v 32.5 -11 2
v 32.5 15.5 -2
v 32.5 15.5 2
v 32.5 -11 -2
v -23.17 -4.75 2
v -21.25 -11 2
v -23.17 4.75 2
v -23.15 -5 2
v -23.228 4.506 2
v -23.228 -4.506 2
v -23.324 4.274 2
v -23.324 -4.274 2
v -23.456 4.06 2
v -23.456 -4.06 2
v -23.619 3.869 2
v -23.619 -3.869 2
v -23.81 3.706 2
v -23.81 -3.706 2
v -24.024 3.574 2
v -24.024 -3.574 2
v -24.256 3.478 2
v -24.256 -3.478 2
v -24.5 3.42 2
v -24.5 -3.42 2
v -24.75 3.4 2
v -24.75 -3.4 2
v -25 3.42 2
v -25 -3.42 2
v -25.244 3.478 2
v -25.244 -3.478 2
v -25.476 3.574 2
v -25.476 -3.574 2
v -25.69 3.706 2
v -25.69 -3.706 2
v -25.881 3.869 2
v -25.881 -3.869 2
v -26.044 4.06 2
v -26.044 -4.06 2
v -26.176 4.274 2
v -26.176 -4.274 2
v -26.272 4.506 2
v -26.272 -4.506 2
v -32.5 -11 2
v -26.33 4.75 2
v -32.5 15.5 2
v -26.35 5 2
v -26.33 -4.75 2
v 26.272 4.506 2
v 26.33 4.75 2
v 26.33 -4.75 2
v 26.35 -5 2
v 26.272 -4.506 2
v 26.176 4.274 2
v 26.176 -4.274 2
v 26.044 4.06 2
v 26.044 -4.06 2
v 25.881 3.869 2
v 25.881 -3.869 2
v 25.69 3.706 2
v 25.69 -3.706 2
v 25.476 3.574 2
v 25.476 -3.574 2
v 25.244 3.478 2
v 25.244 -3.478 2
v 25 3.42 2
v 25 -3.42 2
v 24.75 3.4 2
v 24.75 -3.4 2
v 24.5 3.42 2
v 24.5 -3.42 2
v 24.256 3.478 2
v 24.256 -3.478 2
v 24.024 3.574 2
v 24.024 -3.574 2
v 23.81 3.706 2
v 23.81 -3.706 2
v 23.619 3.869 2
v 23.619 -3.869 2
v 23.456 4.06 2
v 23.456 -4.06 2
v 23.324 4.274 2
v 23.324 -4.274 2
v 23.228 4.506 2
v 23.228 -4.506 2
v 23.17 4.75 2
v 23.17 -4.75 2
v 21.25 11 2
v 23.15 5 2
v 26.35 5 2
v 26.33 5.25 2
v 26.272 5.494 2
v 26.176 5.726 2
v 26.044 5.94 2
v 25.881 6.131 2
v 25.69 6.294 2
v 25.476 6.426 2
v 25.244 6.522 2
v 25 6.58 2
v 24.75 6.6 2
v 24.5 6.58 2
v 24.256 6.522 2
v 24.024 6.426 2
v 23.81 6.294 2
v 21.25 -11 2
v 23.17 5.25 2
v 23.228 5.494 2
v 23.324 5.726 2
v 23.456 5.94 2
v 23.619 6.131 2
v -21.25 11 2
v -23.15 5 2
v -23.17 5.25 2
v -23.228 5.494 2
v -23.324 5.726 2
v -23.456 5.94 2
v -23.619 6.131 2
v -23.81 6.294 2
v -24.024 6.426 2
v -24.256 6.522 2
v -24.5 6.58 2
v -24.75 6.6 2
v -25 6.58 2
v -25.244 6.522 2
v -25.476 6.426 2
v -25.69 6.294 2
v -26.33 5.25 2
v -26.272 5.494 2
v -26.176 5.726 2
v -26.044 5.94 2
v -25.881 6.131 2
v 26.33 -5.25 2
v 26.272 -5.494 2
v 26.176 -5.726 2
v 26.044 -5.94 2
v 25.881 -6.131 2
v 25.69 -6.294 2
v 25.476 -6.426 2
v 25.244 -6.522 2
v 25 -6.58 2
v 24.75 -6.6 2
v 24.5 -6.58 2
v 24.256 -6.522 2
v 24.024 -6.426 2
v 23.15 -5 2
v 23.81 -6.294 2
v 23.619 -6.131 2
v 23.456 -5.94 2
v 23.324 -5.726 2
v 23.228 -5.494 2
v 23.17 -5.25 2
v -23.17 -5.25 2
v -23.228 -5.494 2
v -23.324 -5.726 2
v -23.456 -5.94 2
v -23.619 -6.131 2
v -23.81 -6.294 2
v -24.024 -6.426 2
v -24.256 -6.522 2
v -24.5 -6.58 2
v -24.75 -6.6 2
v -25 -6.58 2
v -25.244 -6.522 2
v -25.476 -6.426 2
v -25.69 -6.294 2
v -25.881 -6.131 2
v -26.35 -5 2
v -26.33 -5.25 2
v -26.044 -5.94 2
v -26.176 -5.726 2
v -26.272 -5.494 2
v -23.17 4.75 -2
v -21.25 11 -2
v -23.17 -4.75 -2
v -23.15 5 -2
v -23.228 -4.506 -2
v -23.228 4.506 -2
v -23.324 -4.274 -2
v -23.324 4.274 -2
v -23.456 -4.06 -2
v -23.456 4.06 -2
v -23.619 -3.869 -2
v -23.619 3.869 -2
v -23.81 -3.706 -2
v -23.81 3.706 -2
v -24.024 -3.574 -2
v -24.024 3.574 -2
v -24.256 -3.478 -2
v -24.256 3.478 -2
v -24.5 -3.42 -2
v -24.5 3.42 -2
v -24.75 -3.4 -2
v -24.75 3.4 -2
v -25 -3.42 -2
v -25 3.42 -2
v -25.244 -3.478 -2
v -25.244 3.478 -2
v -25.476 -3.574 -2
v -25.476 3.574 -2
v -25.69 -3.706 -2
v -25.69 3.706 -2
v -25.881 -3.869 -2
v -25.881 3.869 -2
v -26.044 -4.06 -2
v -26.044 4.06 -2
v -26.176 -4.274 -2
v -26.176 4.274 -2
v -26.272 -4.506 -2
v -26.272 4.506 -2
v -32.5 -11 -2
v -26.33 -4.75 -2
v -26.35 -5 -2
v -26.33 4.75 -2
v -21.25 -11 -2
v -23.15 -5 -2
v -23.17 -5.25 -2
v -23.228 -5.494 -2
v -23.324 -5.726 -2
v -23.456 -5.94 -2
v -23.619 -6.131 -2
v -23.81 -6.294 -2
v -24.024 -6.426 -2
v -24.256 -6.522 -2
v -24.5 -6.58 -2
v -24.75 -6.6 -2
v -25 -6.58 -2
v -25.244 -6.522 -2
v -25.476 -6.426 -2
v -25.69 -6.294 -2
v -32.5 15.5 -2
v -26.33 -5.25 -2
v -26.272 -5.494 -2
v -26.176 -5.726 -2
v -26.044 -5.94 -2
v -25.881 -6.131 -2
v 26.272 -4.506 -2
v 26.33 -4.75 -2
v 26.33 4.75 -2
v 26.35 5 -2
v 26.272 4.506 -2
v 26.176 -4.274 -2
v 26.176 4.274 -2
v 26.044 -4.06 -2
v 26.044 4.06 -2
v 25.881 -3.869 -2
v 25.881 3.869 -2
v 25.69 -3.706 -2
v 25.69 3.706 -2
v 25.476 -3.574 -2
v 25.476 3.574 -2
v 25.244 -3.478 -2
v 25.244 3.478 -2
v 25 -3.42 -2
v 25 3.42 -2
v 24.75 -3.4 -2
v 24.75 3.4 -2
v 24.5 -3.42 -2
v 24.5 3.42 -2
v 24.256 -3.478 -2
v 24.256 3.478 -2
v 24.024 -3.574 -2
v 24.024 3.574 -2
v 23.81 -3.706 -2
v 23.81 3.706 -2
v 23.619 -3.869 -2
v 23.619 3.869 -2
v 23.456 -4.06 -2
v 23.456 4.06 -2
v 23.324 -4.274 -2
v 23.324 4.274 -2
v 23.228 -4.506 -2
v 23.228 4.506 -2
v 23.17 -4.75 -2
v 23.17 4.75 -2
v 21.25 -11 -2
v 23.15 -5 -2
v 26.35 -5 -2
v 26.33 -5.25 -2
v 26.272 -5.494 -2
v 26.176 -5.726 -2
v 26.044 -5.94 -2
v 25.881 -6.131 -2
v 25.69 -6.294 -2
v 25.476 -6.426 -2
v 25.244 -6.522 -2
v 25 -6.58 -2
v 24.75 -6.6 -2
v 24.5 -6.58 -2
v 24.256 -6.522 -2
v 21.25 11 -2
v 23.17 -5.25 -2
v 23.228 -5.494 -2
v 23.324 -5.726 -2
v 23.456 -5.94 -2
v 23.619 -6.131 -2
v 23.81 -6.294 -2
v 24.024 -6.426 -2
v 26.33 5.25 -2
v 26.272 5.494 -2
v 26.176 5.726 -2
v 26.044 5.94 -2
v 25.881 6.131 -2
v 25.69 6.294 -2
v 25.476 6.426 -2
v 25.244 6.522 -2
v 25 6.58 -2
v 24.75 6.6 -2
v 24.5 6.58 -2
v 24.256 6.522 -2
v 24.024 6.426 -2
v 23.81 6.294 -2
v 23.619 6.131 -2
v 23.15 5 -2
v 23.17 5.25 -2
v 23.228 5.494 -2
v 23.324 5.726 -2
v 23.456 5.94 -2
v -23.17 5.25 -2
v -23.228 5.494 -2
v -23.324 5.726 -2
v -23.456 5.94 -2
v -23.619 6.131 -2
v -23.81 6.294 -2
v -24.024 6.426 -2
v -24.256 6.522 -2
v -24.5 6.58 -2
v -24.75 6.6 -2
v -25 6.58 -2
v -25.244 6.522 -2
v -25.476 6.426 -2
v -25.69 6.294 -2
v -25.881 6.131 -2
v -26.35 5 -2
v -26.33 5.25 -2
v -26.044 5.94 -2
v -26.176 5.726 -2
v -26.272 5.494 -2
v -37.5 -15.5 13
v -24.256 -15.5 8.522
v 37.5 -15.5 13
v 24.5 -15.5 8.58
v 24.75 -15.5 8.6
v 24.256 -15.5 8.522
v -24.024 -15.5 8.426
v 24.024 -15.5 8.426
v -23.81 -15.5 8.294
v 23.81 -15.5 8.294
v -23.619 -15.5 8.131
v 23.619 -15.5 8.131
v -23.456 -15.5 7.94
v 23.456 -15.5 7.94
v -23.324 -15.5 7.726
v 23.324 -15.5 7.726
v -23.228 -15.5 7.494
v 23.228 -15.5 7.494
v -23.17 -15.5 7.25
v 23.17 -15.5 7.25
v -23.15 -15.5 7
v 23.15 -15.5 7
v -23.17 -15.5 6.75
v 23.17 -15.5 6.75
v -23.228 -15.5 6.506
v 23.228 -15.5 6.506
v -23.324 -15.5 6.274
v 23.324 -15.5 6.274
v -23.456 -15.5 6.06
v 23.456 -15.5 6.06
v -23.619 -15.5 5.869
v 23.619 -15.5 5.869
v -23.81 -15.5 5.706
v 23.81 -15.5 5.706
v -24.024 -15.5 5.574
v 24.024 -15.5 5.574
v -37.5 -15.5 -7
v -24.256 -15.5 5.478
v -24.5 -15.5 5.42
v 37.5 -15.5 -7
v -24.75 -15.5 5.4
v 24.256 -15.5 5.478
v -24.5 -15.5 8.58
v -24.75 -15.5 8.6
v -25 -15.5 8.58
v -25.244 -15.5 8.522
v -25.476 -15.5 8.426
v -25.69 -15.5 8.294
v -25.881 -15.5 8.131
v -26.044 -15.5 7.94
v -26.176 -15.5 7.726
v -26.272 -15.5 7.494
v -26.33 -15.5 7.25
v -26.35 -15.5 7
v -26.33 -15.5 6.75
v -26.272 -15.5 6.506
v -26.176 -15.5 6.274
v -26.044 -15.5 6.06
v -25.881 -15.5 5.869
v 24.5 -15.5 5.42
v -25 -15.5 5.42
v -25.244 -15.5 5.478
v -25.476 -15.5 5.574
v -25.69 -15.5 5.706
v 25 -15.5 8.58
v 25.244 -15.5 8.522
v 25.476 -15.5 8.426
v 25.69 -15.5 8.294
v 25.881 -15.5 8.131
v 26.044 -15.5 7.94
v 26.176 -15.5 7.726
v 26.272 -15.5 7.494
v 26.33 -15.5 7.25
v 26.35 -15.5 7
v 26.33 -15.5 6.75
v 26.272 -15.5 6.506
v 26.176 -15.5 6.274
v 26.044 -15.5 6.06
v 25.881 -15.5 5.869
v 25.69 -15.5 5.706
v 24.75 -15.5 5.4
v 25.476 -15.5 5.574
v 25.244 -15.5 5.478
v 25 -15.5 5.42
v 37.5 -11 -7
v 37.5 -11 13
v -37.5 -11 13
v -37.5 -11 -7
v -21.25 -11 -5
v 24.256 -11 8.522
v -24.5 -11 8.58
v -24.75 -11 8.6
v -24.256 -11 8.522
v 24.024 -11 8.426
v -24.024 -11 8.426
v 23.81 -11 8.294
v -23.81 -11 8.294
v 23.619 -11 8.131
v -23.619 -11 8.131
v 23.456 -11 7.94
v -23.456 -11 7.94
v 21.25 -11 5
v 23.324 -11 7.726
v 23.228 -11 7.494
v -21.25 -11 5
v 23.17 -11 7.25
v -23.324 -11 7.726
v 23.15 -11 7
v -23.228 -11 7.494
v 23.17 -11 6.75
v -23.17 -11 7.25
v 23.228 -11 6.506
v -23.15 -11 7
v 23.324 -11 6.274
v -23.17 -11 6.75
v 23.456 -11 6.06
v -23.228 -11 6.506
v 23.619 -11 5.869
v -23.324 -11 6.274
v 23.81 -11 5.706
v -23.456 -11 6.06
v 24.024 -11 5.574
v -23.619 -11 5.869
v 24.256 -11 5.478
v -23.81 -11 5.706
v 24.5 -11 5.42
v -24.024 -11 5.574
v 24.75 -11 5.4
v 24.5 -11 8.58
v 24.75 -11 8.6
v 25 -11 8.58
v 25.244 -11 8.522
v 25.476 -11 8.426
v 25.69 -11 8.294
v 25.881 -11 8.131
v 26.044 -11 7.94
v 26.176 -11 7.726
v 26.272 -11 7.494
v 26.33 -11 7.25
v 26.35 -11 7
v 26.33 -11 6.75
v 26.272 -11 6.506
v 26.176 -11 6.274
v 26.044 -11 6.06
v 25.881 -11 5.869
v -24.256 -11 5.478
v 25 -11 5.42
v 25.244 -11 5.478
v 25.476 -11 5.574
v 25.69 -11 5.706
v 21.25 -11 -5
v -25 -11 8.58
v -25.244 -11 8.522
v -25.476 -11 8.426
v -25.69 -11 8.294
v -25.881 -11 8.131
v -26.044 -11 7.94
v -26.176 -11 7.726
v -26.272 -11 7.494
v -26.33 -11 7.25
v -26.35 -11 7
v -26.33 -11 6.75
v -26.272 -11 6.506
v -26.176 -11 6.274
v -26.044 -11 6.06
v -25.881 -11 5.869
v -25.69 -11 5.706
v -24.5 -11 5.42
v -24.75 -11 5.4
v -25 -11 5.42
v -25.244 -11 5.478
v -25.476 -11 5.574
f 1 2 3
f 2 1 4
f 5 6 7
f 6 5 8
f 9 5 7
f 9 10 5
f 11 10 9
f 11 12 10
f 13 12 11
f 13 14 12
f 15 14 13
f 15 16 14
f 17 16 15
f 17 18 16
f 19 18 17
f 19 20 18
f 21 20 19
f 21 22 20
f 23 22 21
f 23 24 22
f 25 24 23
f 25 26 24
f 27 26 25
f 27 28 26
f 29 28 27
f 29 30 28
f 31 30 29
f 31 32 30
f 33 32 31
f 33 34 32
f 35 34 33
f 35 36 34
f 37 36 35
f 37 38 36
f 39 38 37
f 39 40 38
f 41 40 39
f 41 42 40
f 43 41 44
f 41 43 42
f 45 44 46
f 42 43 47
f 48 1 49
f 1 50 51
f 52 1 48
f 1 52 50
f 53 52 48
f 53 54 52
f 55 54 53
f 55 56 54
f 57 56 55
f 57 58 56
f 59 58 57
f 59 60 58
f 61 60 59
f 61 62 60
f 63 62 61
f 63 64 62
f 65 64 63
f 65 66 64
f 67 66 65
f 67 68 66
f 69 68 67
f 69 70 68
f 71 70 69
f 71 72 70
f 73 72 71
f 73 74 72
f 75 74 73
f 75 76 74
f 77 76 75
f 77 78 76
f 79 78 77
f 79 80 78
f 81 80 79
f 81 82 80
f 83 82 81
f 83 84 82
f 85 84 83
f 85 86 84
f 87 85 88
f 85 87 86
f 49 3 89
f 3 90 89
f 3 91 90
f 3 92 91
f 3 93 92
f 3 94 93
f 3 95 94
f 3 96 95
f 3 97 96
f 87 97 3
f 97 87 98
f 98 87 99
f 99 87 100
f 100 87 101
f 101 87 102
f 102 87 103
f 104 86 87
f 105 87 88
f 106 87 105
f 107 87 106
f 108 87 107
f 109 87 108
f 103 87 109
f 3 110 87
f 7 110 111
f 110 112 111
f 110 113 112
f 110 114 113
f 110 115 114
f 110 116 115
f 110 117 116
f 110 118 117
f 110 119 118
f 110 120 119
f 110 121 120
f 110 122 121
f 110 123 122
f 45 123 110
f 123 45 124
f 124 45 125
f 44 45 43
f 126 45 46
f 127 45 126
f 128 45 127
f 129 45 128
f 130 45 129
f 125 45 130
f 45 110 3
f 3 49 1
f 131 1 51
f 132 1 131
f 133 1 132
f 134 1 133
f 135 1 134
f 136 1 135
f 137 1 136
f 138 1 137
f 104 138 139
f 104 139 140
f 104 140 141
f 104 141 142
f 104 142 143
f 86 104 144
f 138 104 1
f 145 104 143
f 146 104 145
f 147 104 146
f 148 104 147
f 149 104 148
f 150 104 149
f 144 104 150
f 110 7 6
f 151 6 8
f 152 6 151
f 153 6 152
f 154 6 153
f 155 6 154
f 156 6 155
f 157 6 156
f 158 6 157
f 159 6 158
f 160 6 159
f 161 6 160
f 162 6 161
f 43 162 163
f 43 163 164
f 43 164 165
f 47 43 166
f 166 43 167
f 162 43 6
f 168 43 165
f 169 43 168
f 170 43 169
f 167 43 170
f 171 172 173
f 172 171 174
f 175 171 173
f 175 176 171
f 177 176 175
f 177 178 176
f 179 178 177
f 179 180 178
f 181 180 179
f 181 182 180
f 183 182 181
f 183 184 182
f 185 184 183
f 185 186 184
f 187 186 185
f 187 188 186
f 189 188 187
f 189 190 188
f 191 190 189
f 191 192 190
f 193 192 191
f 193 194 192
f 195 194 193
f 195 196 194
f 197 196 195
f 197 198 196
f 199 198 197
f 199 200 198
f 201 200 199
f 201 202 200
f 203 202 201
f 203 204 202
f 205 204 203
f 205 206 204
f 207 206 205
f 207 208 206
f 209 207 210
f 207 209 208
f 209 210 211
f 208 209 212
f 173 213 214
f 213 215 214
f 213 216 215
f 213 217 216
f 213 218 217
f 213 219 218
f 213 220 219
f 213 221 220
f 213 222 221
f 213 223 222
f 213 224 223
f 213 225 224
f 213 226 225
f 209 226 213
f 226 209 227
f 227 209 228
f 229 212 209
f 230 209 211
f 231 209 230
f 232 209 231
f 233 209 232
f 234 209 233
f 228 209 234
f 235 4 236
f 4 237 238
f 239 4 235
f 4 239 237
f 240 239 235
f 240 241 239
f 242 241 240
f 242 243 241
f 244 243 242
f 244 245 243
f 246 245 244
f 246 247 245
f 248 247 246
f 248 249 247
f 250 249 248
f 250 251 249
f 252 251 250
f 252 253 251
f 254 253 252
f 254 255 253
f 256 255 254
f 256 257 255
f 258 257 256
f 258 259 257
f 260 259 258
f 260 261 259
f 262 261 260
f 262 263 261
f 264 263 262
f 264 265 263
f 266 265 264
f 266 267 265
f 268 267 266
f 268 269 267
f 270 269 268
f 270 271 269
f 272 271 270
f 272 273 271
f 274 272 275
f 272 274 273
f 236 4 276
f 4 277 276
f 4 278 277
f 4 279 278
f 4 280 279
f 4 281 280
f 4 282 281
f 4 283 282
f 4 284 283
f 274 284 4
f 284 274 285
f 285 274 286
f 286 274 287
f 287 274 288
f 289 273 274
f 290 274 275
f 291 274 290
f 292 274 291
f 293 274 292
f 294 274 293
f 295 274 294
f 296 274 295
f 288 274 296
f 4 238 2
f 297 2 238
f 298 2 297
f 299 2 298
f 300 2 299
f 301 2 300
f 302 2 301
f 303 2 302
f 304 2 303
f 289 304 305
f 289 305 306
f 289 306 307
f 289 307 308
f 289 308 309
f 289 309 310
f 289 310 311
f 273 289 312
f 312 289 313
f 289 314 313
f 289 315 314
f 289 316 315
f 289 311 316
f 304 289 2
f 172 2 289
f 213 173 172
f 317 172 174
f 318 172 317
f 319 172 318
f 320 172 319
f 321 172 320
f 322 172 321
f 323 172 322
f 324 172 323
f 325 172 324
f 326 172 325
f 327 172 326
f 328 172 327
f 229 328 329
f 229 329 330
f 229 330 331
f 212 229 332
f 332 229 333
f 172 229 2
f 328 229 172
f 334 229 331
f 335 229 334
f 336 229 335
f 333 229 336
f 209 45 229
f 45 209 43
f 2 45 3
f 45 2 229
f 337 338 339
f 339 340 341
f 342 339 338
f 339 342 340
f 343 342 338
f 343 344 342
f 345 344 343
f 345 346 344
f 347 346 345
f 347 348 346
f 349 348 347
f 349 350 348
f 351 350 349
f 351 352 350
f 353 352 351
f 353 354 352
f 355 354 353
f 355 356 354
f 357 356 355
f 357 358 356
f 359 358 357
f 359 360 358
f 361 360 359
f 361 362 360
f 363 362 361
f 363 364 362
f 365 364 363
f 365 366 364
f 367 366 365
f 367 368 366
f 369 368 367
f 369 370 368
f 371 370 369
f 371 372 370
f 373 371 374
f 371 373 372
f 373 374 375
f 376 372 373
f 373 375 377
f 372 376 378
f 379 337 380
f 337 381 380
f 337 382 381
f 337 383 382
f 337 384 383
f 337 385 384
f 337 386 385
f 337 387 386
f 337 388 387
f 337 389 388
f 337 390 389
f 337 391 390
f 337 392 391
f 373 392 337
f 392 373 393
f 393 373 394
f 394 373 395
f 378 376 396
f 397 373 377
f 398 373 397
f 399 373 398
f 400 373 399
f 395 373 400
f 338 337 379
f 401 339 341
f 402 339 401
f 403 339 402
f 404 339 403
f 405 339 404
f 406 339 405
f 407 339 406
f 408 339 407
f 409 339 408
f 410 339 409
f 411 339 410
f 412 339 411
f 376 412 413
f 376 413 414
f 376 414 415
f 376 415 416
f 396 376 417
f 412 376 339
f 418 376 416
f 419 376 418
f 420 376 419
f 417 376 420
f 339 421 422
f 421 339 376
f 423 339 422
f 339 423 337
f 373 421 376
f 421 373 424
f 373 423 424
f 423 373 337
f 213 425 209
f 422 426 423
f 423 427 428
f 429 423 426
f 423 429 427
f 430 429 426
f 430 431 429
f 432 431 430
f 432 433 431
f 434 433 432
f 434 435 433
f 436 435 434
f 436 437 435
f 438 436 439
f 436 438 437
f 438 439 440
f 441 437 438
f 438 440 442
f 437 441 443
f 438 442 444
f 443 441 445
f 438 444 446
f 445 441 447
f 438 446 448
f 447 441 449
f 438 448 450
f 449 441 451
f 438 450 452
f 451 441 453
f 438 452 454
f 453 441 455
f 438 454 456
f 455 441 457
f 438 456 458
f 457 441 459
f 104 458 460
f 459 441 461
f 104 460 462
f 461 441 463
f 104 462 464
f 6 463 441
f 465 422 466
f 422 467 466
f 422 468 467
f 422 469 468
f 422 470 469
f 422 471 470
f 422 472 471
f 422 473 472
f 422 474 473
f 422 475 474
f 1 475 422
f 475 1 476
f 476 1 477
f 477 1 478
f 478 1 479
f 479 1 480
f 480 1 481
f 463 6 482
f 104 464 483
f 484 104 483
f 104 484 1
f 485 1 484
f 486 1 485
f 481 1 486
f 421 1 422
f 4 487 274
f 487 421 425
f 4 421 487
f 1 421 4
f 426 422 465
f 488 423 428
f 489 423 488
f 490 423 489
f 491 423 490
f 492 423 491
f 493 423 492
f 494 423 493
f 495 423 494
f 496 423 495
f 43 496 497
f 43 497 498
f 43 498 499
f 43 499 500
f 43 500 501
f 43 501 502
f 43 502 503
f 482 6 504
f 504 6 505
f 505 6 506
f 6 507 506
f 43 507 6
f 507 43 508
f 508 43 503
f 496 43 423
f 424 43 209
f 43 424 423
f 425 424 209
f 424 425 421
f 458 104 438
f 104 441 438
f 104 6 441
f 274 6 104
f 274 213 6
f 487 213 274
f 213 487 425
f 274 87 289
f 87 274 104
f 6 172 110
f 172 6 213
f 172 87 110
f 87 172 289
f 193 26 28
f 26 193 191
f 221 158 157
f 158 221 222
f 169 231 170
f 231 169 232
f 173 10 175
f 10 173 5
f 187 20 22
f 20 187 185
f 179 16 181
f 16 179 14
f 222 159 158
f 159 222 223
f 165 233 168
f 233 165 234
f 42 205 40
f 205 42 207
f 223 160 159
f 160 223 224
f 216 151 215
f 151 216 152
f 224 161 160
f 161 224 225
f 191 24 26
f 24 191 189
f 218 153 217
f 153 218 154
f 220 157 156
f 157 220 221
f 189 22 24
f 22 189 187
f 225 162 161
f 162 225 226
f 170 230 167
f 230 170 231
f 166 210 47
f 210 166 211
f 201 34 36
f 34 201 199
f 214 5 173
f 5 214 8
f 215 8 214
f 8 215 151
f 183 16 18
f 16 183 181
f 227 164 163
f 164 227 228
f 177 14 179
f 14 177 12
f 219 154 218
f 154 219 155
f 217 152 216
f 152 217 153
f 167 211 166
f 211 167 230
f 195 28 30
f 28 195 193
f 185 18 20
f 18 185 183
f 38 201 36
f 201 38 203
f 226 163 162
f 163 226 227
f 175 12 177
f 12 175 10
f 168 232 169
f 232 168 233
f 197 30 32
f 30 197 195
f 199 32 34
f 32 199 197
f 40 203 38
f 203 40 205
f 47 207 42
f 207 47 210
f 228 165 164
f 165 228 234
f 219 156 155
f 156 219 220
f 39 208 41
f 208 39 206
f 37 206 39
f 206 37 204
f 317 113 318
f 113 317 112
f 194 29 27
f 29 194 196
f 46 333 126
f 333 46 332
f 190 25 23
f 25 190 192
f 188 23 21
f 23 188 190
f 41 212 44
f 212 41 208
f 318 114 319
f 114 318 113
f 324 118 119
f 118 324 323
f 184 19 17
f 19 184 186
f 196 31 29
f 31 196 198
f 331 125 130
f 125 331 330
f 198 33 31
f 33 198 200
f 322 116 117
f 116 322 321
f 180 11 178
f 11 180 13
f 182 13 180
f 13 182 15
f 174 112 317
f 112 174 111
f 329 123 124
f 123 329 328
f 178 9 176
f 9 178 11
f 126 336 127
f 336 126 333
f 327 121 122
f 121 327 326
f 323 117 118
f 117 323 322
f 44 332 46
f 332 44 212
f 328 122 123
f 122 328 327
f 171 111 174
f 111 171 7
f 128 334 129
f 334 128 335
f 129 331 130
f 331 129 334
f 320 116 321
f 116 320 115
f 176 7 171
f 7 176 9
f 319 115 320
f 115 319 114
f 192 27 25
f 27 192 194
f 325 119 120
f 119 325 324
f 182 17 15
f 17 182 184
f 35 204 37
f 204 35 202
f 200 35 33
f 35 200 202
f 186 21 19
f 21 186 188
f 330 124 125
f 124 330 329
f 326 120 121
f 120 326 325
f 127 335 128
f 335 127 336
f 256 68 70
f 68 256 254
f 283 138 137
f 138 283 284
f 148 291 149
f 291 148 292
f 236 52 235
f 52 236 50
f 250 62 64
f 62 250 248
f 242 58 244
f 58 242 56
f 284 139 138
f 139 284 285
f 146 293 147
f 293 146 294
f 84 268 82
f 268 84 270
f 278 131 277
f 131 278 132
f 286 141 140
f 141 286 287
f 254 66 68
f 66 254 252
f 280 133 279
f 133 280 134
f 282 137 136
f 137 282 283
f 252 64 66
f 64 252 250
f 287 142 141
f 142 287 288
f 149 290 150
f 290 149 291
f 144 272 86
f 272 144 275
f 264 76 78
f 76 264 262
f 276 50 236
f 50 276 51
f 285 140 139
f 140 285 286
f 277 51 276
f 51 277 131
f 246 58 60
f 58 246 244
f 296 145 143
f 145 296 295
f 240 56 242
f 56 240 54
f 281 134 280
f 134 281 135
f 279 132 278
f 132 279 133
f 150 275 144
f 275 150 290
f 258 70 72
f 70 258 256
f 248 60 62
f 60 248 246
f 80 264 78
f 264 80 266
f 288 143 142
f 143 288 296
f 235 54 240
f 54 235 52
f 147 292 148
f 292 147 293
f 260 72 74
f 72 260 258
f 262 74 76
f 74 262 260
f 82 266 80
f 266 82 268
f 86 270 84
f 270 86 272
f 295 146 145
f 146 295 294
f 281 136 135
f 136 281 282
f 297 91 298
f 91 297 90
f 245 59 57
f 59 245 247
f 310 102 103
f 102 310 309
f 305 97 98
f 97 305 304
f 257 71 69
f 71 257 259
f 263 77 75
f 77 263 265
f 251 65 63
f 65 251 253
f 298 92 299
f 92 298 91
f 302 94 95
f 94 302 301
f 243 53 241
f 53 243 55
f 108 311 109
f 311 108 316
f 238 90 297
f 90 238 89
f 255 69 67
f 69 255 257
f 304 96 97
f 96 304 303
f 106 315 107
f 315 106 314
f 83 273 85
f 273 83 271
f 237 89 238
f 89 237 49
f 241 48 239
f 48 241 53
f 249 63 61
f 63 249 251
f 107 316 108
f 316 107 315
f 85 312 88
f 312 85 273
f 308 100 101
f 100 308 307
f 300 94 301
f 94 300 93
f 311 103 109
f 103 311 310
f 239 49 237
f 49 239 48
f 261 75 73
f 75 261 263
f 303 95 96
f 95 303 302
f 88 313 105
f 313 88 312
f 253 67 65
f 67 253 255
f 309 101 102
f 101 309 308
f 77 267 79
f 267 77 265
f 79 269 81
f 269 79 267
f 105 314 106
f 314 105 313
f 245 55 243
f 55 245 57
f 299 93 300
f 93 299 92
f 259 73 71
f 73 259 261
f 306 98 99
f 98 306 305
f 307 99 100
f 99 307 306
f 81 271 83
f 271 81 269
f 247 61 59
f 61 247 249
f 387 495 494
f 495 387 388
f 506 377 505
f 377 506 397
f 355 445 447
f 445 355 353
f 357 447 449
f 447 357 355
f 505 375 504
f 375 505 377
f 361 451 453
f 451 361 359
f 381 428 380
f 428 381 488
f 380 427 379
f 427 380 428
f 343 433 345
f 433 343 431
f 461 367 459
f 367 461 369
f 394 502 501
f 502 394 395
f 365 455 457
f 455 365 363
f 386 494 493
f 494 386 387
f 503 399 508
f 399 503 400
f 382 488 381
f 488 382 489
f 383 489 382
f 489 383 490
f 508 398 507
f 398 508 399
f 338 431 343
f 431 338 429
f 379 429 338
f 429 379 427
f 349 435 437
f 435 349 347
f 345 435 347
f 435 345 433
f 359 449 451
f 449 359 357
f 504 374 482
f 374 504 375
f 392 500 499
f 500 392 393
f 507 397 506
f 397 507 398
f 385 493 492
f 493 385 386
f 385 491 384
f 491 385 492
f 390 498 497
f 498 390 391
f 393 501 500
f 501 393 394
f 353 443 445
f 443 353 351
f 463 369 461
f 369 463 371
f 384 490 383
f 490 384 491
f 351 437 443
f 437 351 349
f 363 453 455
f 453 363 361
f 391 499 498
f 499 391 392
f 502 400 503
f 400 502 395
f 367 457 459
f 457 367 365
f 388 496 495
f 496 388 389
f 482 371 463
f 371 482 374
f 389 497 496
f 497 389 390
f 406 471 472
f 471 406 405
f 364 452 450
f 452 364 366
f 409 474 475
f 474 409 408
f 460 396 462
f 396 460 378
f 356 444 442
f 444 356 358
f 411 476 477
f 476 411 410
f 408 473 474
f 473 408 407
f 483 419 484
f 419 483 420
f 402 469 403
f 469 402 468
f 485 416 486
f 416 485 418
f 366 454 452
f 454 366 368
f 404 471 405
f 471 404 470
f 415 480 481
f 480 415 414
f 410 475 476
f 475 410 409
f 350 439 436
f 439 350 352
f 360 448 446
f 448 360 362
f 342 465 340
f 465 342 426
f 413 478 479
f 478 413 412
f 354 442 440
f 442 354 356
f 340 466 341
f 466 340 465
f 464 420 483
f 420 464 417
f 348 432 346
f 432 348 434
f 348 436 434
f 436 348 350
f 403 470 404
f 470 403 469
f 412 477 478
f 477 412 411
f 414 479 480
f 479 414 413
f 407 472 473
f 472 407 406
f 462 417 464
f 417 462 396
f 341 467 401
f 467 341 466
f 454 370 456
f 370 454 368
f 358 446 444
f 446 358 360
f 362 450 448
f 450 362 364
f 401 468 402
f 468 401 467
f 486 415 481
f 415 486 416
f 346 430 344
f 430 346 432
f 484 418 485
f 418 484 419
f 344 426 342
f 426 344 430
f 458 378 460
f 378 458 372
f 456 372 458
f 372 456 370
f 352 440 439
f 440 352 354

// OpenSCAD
module pepernoten_servo_aansluiting() {
    difference() {
        
        
        union() {
            // Montageplaat
            translate([-65/2, -31/2, -4/2])
                cube([65, 31, 4]);

            
            translate([-65/2-5, -31/2, -2-5]){
                cube([75, 4.5, 20], center=false);
            }


        }    


        

        // Opening voor servo body
        translate([0, 0, 0])
            cube([42.5, 22, 10], center=true);

        // 4 montagegaten
        translate([-49.5/2, -10/2, 0])
            cylinder(h=10, d=3.2, center=true, $fn=40);

        translate([-49.5/2,  10/2, 0])
            cylinder(h=10, d=3.2, center=true, $fn=40);

        translate([ 49.5/2, -10/2, 0])
            cylinder(h=10, d=3.2, center=true, $fn=40);

        translate([ 49.5/2,  10/2, 0])
            cylinder(h=10, d=3.2, center=true, $fn=40);

        translate([-49.5/2, -10/2, 7])
        rotate([90, 0, 0]) 
            cylinder(h=1000, d=3.2, center=true, $fn=40);


        translate([49.5/2, -10/2, 7])
        rotate([90, 0, 0]) 
            cylinder(h=1000, d=3.2, center=true, $fn=40);

    }
}

pepernoten_servo_aansluiting();
